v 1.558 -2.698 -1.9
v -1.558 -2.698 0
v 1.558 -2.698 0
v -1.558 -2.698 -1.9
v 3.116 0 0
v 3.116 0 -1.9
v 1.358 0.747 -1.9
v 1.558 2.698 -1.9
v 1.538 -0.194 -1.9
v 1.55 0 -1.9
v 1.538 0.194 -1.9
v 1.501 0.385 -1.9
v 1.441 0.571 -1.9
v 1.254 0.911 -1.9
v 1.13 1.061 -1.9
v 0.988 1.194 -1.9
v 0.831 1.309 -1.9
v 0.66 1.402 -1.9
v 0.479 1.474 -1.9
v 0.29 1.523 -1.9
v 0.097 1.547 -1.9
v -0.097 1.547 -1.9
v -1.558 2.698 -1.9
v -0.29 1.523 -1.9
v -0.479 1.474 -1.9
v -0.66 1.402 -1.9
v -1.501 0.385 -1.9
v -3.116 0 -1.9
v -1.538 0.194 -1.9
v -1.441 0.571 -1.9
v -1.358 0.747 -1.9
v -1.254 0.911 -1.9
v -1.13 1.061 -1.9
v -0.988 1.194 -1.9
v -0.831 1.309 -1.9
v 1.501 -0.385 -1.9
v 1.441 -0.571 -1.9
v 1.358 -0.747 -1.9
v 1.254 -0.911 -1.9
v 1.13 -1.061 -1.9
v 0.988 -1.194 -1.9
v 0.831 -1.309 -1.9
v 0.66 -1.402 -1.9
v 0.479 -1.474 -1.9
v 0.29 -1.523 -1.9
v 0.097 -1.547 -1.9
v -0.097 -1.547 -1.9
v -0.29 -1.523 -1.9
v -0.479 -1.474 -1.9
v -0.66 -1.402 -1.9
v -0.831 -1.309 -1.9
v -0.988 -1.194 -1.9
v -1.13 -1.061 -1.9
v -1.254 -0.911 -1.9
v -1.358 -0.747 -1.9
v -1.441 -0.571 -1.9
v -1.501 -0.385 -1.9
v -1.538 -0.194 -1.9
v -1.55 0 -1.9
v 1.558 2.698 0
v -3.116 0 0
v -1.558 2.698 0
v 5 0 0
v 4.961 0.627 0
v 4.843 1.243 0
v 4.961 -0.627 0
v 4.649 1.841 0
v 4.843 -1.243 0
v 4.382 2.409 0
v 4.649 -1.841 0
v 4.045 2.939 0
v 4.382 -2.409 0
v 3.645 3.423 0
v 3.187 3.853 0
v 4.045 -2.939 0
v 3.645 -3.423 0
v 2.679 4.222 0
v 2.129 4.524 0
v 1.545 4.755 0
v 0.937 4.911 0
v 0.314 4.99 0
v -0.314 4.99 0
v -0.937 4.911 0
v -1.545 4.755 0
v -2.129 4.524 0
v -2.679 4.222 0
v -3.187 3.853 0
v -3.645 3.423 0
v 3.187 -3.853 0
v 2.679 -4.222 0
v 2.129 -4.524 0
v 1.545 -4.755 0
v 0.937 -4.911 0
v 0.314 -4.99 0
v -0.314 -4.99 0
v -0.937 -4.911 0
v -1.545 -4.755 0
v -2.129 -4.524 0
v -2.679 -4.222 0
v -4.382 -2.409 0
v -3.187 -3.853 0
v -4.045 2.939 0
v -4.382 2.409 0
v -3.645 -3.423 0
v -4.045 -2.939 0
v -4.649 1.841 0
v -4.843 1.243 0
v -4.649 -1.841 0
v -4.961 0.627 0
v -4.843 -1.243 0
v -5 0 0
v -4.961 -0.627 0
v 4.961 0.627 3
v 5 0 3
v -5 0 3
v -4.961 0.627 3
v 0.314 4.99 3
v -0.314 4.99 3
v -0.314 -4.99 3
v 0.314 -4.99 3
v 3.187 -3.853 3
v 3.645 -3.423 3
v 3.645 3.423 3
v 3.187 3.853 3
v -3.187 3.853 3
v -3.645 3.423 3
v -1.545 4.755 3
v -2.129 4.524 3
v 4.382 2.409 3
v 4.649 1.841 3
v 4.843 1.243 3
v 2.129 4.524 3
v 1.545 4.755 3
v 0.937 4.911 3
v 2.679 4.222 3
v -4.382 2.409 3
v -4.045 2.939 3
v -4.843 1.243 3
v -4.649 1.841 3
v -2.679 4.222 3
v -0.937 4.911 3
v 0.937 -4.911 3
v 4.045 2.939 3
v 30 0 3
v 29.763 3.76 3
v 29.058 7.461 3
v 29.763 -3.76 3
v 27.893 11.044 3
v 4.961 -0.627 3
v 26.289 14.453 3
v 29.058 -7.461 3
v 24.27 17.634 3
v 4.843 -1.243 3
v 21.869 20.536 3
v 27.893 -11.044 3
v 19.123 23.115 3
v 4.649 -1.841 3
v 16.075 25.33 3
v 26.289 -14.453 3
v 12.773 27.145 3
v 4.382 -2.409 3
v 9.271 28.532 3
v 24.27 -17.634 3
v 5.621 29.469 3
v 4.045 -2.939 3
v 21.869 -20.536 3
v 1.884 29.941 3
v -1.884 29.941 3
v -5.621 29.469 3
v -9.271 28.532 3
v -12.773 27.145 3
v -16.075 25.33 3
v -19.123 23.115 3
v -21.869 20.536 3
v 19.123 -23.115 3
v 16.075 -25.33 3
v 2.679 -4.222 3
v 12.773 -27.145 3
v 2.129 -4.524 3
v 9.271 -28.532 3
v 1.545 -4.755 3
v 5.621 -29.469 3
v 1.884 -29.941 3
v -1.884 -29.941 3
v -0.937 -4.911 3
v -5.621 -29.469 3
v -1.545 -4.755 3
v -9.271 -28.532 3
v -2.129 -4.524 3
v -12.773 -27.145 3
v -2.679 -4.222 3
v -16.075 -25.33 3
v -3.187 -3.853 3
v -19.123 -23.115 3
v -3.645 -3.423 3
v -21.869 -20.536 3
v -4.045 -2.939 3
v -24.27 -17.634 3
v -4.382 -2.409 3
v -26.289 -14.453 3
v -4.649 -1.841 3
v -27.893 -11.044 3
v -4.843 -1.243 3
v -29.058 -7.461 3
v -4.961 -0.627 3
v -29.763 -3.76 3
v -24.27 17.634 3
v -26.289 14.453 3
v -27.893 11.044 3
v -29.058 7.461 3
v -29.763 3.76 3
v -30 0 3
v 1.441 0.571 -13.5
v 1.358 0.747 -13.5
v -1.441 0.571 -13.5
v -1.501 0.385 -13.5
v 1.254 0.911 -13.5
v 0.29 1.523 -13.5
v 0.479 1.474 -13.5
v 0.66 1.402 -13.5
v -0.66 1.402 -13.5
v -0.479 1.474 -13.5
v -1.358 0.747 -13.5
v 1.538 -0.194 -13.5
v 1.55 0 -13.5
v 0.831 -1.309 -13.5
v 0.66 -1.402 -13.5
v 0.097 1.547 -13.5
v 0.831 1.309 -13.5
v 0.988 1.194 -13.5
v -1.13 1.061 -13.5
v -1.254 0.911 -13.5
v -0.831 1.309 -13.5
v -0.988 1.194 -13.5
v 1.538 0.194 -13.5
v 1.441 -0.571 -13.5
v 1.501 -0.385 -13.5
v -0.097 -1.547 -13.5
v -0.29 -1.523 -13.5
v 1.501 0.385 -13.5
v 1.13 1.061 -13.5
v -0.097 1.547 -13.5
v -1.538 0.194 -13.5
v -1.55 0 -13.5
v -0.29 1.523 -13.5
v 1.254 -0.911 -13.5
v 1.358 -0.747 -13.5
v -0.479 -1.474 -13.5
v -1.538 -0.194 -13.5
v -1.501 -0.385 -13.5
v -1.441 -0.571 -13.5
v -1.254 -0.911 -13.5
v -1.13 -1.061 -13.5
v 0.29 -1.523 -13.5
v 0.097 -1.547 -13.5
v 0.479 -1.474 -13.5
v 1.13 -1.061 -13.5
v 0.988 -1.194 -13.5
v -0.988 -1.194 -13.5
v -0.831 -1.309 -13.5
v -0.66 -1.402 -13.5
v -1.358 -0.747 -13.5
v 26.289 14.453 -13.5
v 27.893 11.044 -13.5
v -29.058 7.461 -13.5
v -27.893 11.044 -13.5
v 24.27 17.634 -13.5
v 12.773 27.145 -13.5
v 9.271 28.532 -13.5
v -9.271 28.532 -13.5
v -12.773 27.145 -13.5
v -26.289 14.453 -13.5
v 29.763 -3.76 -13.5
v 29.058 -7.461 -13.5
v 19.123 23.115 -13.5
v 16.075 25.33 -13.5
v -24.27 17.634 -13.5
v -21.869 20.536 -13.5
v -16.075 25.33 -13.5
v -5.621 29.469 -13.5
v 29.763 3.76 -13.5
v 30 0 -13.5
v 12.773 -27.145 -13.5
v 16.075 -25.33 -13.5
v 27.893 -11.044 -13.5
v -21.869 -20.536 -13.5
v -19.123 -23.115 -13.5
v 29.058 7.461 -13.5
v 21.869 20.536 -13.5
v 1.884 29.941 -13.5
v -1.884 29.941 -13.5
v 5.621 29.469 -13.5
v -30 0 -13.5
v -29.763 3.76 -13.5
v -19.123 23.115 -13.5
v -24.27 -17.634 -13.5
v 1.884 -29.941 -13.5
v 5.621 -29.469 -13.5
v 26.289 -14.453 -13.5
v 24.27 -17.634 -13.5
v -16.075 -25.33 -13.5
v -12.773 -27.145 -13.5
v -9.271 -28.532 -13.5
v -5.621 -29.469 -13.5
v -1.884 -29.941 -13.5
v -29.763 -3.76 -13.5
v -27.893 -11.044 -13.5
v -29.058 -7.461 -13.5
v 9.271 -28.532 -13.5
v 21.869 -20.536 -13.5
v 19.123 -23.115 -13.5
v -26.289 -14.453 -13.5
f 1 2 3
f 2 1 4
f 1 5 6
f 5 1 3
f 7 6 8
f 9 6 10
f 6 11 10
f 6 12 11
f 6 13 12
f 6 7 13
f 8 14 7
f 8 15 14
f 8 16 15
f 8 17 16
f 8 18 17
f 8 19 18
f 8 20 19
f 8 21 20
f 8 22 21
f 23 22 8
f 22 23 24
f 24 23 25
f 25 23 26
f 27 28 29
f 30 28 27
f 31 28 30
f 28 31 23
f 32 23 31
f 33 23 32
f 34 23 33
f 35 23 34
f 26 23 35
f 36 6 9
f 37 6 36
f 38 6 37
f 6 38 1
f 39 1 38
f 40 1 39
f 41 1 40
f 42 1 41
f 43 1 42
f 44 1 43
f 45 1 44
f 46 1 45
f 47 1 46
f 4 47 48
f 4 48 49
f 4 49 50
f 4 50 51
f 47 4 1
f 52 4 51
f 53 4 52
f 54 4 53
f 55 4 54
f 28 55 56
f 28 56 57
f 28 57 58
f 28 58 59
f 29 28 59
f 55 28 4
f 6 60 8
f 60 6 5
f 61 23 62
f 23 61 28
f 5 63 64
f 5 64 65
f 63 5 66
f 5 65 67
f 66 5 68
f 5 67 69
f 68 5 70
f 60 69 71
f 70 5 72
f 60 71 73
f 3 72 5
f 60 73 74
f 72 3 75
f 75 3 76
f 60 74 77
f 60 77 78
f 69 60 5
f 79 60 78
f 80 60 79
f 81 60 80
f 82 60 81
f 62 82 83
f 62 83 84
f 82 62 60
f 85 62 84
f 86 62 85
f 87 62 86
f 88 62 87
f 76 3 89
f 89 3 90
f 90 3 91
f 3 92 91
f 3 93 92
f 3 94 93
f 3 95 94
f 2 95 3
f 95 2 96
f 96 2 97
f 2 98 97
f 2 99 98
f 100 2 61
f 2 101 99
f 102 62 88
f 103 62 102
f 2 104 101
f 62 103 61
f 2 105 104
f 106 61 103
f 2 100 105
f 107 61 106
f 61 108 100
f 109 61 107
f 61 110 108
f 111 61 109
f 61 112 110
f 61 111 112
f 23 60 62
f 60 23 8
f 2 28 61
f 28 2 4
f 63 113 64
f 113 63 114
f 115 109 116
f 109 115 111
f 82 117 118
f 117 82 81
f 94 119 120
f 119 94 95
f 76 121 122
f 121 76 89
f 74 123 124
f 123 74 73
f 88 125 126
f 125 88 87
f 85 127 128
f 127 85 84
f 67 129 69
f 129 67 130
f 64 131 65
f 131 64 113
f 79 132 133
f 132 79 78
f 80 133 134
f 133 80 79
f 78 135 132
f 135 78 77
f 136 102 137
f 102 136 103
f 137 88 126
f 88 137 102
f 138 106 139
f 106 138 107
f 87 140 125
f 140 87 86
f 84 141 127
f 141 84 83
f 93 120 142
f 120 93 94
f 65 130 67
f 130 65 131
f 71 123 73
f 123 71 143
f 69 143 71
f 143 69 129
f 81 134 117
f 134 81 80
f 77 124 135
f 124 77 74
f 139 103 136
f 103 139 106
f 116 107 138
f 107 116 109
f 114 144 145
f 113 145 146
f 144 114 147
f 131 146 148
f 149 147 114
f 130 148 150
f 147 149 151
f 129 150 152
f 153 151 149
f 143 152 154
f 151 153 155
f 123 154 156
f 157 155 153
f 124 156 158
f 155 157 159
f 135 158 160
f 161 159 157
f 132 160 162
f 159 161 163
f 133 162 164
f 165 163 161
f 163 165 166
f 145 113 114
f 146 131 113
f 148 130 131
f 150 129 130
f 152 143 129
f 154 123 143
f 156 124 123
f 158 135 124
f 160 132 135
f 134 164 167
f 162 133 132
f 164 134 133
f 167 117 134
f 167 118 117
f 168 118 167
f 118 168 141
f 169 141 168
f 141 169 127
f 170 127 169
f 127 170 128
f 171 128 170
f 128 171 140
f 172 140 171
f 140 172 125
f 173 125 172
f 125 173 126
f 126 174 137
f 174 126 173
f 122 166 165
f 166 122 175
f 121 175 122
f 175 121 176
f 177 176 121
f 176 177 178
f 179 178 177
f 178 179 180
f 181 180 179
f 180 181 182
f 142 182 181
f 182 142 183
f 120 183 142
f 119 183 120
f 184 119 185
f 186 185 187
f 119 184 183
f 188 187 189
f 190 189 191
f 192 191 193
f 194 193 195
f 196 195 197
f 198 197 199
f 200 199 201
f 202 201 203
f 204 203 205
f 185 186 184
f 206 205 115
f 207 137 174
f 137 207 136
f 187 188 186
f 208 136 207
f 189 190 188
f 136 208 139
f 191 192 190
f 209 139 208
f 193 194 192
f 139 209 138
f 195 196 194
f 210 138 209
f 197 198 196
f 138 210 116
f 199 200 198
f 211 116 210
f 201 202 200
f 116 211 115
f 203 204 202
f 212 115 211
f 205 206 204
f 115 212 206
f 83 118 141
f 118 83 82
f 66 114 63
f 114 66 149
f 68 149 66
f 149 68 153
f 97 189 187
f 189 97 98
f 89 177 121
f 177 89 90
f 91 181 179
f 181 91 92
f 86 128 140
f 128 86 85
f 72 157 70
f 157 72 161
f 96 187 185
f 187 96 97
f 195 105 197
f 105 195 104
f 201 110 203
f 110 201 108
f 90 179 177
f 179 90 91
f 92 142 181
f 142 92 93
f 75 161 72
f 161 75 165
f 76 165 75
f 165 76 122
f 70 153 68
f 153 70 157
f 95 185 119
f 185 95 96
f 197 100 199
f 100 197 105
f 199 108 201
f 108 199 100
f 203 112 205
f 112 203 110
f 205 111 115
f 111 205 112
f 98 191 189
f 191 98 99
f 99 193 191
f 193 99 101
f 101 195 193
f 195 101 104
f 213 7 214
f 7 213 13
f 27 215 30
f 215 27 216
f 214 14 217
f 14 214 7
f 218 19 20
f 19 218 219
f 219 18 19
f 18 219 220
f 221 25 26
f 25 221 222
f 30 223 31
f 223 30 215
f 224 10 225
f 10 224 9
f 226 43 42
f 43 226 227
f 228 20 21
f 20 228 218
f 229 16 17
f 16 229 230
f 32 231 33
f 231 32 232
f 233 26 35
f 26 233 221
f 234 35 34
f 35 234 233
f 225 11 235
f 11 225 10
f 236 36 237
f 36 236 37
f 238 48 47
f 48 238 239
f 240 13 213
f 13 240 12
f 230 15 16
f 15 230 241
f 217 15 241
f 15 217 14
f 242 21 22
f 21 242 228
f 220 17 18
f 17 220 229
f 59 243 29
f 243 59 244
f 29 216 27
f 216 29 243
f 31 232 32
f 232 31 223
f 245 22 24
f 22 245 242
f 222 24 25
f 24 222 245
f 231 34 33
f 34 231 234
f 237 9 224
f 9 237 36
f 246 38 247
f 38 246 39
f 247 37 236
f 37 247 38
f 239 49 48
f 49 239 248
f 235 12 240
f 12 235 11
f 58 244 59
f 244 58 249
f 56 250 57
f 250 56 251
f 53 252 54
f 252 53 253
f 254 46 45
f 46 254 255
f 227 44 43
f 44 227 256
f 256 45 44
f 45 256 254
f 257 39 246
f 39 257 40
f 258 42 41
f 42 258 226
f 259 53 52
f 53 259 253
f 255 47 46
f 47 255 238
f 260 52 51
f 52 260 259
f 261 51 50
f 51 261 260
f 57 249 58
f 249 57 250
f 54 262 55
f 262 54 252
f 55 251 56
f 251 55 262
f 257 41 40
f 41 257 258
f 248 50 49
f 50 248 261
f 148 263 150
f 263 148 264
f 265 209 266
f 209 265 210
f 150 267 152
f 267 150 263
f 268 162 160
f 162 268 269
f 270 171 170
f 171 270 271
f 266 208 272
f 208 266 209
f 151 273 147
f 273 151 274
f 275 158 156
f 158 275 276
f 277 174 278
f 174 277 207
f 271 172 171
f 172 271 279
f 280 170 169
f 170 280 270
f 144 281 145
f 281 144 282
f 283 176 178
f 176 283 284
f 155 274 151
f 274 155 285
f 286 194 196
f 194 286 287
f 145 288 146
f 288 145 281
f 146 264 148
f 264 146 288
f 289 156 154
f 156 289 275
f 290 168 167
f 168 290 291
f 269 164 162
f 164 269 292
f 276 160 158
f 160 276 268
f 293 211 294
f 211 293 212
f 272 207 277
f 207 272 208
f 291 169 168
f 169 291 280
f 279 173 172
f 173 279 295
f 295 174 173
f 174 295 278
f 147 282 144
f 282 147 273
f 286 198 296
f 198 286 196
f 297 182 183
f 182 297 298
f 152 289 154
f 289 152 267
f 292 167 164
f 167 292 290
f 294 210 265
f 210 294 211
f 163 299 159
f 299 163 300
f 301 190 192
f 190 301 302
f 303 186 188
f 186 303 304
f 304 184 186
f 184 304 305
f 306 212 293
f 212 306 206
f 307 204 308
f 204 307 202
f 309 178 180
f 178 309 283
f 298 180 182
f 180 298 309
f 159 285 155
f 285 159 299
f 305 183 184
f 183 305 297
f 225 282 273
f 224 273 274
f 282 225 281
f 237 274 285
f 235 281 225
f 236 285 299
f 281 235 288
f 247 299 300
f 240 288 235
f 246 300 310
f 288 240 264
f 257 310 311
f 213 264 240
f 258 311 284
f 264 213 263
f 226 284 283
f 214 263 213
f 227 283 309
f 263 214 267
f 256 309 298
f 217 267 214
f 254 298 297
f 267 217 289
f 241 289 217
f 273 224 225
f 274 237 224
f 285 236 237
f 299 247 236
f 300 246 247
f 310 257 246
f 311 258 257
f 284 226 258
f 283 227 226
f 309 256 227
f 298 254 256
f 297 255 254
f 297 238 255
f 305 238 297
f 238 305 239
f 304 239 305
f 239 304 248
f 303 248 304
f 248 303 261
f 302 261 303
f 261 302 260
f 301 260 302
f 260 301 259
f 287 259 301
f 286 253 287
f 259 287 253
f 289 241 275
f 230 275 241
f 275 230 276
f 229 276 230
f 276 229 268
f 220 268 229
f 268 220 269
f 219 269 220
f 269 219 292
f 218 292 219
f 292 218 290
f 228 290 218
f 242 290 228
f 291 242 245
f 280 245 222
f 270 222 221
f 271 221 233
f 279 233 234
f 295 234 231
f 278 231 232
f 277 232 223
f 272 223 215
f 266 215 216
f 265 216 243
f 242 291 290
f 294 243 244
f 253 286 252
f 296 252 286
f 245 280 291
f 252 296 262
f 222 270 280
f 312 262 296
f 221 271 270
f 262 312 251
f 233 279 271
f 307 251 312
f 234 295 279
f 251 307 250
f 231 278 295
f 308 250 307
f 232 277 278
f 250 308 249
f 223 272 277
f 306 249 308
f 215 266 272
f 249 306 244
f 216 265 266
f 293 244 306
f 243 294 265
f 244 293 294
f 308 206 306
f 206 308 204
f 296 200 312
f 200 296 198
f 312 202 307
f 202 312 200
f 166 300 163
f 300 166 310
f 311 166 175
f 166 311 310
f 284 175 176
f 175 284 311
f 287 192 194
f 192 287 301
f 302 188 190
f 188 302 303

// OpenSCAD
$fn = 50;


difference() {
	union() {
		translate(v = [0, 0, -13.5000000000]) {
			cylinder(h = 16.5000000000, r = 30.0000000000);
		}
	}
	union() {
		translate(v = [0, 0, 0]) {
			rotate(a = [0, 0, 0]) {
				difference() {
					union() {
						translate(v = [0, 0, -1.9000000000]) {
							linear_extrude(height = 1.9000000000) {
								polygon(points = [[3.1158000000, 0.0000000000], [1.5579000000, 2.6983619531], [-1.5579000000, 2.6983619531], [-3.1158000000, 0.0000000000], [-1.5579000000, -2.6983619531], [1.5579000000, -2.6983619531]]);
							}
						}
					}
					union();
				}
			}
		}
		#cylinder(h = 3, r = 5.0000000000);
		#translate(v = [0, 0, -100.0000000000]) {
			cylinder(h = 200, r = 1.5500000000);
		}
	}
}
